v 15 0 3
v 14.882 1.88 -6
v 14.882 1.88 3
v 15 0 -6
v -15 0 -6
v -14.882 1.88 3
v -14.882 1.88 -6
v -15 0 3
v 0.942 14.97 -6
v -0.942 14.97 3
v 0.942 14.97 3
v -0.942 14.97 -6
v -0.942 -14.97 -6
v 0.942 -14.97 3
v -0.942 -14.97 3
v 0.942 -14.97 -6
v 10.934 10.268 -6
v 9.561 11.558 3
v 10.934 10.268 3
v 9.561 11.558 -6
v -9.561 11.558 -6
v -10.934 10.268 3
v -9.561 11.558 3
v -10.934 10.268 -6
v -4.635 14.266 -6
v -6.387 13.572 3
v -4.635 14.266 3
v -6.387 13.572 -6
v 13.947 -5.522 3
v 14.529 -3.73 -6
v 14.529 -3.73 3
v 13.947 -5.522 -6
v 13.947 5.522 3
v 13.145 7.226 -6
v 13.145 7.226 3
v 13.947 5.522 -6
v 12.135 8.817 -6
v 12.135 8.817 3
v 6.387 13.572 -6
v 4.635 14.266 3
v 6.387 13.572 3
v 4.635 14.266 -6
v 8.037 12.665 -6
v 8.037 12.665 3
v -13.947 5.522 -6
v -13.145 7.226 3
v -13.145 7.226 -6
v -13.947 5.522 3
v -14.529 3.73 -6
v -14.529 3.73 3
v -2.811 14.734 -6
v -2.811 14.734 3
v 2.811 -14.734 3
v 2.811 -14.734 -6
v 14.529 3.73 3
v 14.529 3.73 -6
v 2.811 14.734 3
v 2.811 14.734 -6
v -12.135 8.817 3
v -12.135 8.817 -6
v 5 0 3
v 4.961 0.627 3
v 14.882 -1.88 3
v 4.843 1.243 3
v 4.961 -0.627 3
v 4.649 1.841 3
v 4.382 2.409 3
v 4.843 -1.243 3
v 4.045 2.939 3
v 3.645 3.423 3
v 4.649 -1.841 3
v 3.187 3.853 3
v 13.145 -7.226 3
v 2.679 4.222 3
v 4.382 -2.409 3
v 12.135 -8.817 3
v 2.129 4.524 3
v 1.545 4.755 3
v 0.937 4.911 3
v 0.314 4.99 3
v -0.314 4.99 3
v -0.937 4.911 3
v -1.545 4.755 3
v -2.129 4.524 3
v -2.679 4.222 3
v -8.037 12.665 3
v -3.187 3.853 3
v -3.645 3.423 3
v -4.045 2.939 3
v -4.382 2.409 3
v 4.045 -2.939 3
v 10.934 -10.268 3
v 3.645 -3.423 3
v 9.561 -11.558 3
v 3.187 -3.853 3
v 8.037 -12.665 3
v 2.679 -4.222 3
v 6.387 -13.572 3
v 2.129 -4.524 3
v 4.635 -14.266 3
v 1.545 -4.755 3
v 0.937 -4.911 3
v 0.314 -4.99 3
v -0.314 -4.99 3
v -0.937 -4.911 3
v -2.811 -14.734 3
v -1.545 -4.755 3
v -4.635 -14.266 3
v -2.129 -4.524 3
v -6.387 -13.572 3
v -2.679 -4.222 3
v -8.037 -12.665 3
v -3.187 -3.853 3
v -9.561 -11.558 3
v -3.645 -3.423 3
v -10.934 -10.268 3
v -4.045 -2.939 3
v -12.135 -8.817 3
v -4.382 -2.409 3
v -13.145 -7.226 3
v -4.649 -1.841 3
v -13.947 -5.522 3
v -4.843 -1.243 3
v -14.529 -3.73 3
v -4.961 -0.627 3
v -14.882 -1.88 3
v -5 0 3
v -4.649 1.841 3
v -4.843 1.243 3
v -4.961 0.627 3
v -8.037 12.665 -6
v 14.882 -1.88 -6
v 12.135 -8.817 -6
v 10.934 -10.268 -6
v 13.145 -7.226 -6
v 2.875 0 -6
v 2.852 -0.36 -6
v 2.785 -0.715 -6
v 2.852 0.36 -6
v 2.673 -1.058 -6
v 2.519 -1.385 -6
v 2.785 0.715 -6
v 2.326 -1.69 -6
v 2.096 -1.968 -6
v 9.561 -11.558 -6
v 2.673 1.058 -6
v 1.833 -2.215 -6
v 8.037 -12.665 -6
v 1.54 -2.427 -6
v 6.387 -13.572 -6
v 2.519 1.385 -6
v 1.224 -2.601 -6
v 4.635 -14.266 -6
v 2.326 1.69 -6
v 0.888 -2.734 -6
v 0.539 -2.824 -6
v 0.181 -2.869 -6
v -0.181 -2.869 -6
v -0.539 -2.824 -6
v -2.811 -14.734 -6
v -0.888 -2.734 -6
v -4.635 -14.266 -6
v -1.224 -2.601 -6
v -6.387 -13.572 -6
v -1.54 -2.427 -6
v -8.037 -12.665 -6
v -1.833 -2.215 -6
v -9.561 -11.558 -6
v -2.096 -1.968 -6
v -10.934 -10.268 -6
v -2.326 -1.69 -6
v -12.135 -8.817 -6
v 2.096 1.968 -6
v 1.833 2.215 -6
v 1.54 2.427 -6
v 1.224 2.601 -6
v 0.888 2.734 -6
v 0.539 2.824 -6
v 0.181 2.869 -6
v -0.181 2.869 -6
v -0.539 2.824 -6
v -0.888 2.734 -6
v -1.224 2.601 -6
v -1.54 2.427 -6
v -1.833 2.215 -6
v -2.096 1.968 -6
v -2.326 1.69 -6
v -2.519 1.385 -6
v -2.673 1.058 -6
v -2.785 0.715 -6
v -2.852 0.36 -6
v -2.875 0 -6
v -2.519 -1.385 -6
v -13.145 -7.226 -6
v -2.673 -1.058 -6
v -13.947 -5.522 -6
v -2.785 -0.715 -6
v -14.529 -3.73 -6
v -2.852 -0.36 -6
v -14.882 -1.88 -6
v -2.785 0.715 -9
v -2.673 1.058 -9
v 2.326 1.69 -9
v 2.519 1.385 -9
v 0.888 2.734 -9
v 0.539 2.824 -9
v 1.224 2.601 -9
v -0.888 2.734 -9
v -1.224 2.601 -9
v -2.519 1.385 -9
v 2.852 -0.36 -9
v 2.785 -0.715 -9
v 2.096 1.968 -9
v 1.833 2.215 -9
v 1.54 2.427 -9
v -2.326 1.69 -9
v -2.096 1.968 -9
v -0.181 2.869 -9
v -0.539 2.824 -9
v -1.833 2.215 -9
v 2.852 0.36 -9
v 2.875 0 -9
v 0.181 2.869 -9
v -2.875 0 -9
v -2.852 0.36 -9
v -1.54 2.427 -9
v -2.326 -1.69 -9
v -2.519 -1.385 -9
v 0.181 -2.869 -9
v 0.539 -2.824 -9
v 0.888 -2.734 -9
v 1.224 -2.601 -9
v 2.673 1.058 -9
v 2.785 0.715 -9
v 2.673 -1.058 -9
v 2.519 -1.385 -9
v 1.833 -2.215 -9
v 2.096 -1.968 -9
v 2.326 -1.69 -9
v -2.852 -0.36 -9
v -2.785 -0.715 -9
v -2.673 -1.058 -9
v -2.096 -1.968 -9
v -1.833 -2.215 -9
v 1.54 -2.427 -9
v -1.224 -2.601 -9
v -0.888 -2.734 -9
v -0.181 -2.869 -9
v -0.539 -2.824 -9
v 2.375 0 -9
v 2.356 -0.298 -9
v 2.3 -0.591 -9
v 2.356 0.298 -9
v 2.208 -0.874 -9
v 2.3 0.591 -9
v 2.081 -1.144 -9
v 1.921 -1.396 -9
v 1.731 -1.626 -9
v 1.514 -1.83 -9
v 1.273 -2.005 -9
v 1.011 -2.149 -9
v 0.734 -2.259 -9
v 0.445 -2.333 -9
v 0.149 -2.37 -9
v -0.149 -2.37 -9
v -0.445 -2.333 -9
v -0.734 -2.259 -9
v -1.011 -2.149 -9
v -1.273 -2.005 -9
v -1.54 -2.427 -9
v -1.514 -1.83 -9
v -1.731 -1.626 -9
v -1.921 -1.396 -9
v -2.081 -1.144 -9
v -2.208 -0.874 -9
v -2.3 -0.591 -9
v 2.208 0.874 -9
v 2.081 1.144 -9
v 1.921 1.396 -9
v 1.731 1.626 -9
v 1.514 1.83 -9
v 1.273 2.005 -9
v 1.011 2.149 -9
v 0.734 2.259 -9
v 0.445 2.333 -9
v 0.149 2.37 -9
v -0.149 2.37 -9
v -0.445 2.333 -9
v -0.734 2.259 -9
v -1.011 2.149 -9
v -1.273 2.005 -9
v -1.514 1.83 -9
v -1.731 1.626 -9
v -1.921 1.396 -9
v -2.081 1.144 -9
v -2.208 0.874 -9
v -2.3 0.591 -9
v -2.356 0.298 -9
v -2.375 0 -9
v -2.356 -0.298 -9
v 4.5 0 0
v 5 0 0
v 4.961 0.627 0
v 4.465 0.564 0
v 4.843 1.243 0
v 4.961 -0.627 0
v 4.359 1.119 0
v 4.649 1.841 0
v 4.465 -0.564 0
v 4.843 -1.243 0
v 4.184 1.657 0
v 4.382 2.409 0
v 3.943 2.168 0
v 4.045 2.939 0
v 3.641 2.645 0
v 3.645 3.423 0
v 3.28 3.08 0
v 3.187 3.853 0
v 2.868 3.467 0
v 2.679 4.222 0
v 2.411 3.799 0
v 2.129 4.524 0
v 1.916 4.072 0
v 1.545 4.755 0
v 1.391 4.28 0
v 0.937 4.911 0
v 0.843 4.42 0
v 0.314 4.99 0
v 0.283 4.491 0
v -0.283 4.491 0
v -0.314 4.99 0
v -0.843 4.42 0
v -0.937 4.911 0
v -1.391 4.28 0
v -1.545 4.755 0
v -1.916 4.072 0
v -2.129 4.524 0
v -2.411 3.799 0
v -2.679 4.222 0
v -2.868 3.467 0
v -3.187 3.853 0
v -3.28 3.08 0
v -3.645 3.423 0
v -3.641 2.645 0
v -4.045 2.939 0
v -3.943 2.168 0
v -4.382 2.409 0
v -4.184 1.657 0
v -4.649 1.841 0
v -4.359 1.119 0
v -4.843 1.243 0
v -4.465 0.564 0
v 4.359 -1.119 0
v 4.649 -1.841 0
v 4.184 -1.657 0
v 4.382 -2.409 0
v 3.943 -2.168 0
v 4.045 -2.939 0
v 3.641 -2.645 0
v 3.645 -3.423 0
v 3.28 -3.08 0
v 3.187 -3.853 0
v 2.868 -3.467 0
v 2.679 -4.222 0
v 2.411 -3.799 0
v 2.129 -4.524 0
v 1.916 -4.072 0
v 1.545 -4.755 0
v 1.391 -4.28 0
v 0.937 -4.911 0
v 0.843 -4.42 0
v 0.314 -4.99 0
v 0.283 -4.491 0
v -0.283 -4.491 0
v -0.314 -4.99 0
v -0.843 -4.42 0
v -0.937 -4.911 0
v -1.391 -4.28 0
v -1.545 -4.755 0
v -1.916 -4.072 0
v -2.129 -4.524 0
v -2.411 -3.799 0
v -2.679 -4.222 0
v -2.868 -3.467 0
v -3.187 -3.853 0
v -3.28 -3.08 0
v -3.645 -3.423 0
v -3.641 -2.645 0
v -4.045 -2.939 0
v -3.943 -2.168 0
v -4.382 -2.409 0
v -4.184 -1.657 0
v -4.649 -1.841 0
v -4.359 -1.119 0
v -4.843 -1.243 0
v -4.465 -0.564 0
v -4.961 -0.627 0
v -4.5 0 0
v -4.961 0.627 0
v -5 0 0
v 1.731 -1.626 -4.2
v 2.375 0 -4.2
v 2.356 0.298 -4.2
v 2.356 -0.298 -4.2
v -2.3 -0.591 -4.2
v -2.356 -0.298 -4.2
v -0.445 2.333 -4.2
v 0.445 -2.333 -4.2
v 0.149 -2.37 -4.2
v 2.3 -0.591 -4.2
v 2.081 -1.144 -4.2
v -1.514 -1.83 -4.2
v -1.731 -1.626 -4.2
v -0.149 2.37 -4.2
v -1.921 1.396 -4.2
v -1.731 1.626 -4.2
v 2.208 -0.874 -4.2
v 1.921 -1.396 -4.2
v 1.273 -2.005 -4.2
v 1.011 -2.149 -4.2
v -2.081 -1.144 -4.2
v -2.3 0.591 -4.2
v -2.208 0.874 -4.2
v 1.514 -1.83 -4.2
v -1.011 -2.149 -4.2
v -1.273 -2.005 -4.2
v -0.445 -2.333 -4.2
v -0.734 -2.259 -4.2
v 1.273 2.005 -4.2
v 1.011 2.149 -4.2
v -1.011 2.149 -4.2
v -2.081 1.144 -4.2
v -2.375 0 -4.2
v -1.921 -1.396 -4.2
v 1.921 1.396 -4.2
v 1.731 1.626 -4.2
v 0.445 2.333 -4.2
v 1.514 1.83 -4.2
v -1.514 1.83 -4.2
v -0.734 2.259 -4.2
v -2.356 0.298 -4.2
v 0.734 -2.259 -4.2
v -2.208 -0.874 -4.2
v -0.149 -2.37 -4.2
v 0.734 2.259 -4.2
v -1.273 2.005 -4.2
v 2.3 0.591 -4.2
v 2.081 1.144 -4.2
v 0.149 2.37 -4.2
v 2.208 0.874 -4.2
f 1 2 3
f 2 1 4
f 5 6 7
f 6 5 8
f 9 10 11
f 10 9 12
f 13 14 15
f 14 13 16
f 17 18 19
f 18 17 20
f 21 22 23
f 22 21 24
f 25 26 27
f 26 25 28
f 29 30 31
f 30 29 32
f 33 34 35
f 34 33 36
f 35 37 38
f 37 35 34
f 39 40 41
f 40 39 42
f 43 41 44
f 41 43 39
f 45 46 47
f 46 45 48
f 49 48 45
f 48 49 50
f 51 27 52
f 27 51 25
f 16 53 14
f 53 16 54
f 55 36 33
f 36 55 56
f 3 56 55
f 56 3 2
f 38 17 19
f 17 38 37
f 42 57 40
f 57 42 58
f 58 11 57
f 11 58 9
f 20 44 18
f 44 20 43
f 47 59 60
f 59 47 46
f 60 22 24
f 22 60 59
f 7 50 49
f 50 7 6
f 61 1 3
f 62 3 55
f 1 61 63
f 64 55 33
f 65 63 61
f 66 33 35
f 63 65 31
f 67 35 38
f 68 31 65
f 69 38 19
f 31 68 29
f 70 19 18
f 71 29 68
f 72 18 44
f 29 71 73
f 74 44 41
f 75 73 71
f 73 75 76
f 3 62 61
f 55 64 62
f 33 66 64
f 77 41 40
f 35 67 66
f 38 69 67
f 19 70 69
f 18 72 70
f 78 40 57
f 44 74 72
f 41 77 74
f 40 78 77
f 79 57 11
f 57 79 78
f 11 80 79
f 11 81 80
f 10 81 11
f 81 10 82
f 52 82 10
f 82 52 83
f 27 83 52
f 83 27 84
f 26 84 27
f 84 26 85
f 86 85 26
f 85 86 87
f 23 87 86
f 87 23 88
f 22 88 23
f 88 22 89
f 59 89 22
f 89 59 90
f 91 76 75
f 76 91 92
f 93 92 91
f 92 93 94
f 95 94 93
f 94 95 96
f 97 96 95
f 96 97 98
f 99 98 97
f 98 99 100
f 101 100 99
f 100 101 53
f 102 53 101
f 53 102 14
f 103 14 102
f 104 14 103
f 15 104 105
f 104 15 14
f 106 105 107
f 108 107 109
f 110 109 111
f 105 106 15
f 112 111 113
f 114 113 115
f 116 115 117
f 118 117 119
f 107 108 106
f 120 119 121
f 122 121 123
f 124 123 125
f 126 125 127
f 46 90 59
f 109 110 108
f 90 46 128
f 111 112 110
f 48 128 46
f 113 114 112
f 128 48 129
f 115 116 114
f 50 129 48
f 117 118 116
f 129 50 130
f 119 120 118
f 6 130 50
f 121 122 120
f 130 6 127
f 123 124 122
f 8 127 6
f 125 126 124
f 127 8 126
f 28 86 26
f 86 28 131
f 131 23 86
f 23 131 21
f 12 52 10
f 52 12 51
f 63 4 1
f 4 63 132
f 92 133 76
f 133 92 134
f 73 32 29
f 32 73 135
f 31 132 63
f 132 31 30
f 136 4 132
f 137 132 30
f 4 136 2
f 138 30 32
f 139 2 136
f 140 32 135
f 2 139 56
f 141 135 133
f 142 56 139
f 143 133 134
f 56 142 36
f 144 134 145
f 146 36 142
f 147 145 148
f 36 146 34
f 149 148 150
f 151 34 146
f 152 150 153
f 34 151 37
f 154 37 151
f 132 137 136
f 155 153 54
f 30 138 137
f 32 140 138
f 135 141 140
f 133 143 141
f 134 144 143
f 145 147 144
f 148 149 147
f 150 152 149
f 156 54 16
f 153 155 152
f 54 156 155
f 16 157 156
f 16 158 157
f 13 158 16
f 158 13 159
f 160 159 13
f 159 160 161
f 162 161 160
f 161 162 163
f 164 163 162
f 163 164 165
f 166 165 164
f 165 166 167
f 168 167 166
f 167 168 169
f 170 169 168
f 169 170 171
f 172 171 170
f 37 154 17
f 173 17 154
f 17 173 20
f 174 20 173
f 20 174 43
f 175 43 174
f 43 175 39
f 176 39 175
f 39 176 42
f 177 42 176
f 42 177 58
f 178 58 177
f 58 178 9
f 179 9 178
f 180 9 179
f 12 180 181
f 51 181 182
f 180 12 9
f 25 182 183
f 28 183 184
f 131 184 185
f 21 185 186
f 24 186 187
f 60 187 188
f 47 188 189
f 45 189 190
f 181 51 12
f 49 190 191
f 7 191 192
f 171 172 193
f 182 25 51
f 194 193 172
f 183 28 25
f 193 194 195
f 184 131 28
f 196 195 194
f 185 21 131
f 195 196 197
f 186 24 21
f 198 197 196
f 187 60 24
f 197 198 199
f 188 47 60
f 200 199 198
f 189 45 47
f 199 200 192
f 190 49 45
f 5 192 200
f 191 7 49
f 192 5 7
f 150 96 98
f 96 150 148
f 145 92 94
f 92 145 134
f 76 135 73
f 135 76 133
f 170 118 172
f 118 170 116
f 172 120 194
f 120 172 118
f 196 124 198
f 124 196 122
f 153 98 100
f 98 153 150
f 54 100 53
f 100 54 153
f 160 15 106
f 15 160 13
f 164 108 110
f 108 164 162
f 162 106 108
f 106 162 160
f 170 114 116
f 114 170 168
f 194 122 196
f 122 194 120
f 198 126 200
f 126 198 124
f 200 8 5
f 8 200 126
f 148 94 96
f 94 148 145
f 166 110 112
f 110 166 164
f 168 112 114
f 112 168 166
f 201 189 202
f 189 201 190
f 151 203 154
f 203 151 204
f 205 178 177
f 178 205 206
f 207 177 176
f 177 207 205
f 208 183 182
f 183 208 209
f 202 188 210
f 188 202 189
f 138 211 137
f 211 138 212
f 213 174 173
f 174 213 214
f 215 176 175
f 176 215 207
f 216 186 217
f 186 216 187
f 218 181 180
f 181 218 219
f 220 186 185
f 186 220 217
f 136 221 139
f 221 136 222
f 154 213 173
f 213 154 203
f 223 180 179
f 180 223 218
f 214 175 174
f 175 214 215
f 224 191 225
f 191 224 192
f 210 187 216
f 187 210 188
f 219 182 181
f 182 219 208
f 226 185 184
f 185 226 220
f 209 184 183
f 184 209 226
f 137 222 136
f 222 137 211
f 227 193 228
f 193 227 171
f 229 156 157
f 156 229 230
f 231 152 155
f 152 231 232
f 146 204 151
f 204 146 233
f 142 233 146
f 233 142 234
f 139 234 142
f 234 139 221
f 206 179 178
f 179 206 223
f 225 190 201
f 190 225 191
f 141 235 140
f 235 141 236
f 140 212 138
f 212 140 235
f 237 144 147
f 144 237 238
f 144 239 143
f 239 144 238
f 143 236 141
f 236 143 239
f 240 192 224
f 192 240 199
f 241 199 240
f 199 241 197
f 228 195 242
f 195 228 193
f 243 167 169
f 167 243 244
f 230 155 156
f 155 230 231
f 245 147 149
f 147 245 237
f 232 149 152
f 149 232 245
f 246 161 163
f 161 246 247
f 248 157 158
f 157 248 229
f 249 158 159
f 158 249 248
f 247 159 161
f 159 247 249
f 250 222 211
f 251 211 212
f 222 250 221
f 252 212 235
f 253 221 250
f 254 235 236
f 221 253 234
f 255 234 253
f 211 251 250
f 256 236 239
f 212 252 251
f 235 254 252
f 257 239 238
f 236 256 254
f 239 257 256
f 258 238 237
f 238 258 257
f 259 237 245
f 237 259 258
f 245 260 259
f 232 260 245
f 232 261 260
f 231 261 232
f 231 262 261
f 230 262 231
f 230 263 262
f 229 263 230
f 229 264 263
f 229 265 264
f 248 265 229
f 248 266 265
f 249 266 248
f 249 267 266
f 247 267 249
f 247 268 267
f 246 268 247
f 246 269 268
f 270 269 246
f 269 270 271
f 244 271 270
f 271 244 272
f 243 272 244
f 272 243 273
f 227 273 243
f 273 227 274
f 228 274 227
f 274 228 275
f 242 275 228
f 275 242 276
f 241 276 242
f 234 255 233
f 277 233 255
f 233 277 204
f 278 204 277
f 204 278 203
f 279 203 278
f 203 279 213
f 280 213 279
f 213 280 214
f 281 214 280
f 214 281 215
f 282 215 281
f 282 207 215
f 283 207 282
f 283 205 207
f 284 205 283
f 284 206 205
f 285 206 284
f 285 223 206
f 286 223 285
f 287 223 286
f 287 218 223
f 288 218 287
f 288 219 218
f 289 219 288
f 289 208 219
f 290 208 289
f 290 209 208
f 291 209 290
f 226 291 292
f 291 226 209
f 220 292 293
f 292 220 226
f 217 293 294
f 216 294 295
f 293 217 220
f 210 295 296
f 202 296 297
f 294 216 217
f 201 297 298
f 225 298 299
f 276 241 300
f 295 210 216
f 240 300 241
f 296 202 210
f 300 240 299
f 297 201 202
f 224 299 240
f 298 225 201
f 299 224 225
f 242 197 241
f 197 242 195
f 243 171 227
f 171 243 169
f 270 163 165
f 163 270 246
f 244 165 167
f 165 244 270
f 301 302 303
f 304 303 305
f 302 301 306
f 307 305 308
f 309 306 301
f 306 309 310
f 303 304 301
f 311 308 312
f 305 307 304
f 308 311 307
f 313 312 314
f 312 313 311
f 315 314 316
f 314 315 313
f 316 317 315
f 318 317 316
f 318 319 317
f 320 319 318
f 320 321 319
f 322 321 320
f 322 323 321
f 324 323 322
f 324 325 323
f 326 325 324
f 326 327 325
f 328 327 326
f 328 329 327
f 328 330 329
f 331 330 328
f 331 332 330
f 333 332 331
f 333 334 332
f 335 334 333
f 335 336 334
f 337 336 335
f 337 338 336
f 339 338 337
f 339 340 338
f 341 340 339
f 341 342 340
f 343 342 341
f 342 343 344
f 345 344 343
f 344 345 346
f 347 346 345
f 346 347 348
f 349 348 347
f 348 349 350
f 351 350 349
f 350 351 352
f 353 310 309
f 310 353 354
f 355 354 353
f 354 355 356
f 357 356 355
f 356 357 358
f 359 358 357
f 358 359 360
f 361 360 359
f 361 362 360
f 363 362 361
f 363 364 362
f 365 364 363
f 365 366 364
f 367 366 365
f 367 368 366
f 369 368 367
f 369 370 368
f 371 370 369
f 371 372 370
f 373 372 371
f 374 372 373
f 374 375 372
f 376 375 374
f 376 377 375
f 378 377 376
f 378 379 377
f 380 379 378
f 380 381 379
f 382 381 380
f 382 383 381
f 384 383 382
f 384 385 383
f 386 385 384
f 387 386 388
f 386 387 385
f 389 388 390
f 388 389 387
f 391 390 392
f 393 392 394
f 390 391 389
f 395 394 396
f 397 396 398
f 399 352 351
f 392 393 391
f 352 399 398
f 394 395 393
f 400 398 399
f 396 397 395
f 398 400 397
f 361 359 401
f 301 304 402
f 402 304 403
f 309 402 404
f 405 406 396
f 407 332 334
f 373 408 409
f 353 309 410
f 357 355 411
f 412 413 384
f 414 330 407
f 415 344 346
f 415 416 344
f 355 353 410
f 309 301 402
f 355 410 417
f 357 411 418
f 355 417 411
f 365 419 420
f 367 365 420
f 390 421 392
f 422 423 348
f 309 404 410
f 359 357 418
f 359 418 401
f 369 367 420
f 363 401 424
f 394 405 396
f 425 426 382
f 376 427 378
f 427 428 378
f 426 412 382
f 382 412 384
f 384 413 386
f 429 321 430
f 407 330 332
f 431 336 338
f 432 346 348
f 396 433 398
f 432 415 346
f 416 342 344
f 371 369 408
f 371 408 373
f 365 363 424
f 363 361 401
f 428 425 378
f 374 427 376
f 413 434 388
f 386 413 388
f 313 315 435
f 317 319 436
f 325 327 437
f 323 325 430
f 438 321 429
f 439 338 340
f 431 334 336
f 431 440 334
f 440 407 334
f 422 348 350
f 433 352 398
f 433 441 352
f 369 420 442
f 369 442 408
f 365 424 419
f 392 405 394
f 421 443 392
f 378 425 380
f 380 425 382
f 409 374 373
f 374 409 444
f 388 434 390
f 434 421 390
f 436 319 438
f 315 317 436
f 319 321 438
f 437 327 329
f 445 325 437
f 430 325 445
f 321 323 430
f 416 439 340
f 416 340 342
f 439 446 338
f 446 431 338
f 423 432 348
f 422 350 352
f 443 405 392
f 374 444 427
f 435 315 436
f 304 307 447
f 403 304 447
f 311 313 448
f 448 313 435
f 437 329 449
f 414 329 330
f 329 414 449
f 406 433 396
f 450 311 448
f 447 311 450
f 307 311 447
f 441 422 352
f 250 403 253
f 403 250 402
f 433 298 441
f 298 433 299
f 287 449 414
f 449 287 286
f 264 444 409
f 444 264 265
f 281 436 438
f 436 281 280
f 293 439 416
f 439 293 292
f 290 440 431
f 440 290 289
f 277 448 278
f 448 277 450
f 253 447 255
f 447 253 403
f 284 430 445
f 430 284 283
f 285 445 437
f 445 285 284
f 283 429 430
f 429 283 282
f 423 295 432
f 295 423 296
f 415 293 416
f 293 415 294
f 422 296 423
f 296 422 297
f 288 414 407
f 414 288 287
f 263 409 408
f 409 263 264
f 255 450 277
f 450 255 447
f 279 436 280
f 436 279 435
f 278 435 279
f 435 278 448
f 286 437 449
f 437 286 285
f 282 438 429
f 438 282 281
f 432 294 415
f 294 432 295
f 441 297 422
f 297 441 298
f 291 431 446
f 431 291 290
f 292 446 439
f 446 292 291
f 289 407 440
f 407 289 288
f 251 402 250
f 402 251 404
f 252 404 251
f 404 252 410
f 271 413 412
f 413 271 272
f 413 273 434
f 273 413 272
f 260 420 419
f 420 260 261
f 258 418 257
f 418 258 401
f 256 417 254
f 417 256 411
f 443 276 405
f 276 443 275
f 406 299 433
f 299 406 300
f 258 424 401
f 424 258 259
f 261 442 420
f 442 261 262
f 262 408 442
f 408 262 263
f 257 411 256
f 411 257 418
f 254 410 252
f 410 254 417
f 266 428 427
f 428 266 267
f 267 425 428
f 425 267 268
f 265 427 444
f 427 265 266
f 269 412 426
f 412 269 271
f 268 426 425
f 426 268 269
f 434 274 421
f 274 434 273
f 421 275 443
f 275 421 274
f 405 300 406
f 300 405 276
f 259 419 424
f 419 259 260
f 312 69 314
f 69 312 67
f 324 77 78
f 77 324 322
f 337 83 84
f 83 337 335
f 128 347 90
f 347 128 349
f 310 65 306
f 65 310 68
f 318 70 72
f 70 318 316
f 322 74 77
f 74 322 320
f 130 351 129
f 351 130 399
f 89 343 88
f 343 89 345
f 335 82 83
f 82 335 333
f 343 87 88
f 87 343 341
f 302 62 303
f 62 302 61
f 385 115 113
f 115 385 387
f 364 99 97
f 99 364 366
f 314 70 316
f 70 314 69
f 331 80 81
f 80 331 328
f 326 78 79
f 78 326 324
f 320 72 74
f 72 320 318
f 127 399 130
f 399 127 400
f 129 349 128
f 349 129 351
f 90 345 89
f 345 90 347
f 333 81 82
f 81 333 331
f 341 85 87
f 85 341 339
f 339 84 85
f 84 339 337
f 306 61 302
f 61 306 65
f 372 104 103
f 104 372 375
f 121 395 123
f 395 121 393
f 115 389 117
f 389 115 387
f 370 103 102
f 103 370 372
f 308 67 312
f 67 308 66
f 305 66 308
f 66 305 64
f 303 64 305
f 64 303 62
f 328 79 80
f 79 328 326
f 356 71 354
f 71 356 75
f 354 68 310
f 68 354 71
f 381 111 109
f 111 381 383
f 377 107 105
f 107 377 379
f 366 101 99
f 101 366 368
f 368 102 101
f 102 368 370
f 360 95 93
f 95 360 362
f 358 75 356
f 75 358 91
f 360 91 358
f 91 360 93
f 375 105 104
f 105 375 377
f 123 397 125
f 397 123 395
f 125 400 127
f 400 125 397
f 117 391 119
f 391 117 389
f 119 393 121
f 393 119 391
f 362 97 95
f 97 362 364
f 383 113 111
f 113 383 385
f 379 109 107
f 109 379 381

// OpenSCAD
$fn = 50;

difference() {
	union() {
		translate(v = [0, 0, -6.0]) {
			cylinder(h = 9, r = 15.0);
		}
		#translate(v = [0, 0, -9.0]) {
			cylinder(h = 9, r = 2.875);
		}
	}
	union() {
		translate(v = [0, 0, 0]) {
			rotate(a = [0, 0, 0]) {
				difference() {
					union() {
						translate(v = [0, 0, -9.0]) {
							cylinder(h = 9, r = 2.25);
						}
						translate(v = [0, 0, -4.2]) {
							cylinder(h = 4.2, r1 = 2.375, r2 = 4.5);
						}
						translate(v = [0, 0, -9.0]) {
							cylinder(h = 9, r = 2.375);
						}
						translate(v = [0, 0, -9.0]) {
							cylinder(h = 9, r = 2.25);
						}
					}
					union();
				}
			}
		}
		#cylinder(h = 3, r = 5.0);
	}
}
